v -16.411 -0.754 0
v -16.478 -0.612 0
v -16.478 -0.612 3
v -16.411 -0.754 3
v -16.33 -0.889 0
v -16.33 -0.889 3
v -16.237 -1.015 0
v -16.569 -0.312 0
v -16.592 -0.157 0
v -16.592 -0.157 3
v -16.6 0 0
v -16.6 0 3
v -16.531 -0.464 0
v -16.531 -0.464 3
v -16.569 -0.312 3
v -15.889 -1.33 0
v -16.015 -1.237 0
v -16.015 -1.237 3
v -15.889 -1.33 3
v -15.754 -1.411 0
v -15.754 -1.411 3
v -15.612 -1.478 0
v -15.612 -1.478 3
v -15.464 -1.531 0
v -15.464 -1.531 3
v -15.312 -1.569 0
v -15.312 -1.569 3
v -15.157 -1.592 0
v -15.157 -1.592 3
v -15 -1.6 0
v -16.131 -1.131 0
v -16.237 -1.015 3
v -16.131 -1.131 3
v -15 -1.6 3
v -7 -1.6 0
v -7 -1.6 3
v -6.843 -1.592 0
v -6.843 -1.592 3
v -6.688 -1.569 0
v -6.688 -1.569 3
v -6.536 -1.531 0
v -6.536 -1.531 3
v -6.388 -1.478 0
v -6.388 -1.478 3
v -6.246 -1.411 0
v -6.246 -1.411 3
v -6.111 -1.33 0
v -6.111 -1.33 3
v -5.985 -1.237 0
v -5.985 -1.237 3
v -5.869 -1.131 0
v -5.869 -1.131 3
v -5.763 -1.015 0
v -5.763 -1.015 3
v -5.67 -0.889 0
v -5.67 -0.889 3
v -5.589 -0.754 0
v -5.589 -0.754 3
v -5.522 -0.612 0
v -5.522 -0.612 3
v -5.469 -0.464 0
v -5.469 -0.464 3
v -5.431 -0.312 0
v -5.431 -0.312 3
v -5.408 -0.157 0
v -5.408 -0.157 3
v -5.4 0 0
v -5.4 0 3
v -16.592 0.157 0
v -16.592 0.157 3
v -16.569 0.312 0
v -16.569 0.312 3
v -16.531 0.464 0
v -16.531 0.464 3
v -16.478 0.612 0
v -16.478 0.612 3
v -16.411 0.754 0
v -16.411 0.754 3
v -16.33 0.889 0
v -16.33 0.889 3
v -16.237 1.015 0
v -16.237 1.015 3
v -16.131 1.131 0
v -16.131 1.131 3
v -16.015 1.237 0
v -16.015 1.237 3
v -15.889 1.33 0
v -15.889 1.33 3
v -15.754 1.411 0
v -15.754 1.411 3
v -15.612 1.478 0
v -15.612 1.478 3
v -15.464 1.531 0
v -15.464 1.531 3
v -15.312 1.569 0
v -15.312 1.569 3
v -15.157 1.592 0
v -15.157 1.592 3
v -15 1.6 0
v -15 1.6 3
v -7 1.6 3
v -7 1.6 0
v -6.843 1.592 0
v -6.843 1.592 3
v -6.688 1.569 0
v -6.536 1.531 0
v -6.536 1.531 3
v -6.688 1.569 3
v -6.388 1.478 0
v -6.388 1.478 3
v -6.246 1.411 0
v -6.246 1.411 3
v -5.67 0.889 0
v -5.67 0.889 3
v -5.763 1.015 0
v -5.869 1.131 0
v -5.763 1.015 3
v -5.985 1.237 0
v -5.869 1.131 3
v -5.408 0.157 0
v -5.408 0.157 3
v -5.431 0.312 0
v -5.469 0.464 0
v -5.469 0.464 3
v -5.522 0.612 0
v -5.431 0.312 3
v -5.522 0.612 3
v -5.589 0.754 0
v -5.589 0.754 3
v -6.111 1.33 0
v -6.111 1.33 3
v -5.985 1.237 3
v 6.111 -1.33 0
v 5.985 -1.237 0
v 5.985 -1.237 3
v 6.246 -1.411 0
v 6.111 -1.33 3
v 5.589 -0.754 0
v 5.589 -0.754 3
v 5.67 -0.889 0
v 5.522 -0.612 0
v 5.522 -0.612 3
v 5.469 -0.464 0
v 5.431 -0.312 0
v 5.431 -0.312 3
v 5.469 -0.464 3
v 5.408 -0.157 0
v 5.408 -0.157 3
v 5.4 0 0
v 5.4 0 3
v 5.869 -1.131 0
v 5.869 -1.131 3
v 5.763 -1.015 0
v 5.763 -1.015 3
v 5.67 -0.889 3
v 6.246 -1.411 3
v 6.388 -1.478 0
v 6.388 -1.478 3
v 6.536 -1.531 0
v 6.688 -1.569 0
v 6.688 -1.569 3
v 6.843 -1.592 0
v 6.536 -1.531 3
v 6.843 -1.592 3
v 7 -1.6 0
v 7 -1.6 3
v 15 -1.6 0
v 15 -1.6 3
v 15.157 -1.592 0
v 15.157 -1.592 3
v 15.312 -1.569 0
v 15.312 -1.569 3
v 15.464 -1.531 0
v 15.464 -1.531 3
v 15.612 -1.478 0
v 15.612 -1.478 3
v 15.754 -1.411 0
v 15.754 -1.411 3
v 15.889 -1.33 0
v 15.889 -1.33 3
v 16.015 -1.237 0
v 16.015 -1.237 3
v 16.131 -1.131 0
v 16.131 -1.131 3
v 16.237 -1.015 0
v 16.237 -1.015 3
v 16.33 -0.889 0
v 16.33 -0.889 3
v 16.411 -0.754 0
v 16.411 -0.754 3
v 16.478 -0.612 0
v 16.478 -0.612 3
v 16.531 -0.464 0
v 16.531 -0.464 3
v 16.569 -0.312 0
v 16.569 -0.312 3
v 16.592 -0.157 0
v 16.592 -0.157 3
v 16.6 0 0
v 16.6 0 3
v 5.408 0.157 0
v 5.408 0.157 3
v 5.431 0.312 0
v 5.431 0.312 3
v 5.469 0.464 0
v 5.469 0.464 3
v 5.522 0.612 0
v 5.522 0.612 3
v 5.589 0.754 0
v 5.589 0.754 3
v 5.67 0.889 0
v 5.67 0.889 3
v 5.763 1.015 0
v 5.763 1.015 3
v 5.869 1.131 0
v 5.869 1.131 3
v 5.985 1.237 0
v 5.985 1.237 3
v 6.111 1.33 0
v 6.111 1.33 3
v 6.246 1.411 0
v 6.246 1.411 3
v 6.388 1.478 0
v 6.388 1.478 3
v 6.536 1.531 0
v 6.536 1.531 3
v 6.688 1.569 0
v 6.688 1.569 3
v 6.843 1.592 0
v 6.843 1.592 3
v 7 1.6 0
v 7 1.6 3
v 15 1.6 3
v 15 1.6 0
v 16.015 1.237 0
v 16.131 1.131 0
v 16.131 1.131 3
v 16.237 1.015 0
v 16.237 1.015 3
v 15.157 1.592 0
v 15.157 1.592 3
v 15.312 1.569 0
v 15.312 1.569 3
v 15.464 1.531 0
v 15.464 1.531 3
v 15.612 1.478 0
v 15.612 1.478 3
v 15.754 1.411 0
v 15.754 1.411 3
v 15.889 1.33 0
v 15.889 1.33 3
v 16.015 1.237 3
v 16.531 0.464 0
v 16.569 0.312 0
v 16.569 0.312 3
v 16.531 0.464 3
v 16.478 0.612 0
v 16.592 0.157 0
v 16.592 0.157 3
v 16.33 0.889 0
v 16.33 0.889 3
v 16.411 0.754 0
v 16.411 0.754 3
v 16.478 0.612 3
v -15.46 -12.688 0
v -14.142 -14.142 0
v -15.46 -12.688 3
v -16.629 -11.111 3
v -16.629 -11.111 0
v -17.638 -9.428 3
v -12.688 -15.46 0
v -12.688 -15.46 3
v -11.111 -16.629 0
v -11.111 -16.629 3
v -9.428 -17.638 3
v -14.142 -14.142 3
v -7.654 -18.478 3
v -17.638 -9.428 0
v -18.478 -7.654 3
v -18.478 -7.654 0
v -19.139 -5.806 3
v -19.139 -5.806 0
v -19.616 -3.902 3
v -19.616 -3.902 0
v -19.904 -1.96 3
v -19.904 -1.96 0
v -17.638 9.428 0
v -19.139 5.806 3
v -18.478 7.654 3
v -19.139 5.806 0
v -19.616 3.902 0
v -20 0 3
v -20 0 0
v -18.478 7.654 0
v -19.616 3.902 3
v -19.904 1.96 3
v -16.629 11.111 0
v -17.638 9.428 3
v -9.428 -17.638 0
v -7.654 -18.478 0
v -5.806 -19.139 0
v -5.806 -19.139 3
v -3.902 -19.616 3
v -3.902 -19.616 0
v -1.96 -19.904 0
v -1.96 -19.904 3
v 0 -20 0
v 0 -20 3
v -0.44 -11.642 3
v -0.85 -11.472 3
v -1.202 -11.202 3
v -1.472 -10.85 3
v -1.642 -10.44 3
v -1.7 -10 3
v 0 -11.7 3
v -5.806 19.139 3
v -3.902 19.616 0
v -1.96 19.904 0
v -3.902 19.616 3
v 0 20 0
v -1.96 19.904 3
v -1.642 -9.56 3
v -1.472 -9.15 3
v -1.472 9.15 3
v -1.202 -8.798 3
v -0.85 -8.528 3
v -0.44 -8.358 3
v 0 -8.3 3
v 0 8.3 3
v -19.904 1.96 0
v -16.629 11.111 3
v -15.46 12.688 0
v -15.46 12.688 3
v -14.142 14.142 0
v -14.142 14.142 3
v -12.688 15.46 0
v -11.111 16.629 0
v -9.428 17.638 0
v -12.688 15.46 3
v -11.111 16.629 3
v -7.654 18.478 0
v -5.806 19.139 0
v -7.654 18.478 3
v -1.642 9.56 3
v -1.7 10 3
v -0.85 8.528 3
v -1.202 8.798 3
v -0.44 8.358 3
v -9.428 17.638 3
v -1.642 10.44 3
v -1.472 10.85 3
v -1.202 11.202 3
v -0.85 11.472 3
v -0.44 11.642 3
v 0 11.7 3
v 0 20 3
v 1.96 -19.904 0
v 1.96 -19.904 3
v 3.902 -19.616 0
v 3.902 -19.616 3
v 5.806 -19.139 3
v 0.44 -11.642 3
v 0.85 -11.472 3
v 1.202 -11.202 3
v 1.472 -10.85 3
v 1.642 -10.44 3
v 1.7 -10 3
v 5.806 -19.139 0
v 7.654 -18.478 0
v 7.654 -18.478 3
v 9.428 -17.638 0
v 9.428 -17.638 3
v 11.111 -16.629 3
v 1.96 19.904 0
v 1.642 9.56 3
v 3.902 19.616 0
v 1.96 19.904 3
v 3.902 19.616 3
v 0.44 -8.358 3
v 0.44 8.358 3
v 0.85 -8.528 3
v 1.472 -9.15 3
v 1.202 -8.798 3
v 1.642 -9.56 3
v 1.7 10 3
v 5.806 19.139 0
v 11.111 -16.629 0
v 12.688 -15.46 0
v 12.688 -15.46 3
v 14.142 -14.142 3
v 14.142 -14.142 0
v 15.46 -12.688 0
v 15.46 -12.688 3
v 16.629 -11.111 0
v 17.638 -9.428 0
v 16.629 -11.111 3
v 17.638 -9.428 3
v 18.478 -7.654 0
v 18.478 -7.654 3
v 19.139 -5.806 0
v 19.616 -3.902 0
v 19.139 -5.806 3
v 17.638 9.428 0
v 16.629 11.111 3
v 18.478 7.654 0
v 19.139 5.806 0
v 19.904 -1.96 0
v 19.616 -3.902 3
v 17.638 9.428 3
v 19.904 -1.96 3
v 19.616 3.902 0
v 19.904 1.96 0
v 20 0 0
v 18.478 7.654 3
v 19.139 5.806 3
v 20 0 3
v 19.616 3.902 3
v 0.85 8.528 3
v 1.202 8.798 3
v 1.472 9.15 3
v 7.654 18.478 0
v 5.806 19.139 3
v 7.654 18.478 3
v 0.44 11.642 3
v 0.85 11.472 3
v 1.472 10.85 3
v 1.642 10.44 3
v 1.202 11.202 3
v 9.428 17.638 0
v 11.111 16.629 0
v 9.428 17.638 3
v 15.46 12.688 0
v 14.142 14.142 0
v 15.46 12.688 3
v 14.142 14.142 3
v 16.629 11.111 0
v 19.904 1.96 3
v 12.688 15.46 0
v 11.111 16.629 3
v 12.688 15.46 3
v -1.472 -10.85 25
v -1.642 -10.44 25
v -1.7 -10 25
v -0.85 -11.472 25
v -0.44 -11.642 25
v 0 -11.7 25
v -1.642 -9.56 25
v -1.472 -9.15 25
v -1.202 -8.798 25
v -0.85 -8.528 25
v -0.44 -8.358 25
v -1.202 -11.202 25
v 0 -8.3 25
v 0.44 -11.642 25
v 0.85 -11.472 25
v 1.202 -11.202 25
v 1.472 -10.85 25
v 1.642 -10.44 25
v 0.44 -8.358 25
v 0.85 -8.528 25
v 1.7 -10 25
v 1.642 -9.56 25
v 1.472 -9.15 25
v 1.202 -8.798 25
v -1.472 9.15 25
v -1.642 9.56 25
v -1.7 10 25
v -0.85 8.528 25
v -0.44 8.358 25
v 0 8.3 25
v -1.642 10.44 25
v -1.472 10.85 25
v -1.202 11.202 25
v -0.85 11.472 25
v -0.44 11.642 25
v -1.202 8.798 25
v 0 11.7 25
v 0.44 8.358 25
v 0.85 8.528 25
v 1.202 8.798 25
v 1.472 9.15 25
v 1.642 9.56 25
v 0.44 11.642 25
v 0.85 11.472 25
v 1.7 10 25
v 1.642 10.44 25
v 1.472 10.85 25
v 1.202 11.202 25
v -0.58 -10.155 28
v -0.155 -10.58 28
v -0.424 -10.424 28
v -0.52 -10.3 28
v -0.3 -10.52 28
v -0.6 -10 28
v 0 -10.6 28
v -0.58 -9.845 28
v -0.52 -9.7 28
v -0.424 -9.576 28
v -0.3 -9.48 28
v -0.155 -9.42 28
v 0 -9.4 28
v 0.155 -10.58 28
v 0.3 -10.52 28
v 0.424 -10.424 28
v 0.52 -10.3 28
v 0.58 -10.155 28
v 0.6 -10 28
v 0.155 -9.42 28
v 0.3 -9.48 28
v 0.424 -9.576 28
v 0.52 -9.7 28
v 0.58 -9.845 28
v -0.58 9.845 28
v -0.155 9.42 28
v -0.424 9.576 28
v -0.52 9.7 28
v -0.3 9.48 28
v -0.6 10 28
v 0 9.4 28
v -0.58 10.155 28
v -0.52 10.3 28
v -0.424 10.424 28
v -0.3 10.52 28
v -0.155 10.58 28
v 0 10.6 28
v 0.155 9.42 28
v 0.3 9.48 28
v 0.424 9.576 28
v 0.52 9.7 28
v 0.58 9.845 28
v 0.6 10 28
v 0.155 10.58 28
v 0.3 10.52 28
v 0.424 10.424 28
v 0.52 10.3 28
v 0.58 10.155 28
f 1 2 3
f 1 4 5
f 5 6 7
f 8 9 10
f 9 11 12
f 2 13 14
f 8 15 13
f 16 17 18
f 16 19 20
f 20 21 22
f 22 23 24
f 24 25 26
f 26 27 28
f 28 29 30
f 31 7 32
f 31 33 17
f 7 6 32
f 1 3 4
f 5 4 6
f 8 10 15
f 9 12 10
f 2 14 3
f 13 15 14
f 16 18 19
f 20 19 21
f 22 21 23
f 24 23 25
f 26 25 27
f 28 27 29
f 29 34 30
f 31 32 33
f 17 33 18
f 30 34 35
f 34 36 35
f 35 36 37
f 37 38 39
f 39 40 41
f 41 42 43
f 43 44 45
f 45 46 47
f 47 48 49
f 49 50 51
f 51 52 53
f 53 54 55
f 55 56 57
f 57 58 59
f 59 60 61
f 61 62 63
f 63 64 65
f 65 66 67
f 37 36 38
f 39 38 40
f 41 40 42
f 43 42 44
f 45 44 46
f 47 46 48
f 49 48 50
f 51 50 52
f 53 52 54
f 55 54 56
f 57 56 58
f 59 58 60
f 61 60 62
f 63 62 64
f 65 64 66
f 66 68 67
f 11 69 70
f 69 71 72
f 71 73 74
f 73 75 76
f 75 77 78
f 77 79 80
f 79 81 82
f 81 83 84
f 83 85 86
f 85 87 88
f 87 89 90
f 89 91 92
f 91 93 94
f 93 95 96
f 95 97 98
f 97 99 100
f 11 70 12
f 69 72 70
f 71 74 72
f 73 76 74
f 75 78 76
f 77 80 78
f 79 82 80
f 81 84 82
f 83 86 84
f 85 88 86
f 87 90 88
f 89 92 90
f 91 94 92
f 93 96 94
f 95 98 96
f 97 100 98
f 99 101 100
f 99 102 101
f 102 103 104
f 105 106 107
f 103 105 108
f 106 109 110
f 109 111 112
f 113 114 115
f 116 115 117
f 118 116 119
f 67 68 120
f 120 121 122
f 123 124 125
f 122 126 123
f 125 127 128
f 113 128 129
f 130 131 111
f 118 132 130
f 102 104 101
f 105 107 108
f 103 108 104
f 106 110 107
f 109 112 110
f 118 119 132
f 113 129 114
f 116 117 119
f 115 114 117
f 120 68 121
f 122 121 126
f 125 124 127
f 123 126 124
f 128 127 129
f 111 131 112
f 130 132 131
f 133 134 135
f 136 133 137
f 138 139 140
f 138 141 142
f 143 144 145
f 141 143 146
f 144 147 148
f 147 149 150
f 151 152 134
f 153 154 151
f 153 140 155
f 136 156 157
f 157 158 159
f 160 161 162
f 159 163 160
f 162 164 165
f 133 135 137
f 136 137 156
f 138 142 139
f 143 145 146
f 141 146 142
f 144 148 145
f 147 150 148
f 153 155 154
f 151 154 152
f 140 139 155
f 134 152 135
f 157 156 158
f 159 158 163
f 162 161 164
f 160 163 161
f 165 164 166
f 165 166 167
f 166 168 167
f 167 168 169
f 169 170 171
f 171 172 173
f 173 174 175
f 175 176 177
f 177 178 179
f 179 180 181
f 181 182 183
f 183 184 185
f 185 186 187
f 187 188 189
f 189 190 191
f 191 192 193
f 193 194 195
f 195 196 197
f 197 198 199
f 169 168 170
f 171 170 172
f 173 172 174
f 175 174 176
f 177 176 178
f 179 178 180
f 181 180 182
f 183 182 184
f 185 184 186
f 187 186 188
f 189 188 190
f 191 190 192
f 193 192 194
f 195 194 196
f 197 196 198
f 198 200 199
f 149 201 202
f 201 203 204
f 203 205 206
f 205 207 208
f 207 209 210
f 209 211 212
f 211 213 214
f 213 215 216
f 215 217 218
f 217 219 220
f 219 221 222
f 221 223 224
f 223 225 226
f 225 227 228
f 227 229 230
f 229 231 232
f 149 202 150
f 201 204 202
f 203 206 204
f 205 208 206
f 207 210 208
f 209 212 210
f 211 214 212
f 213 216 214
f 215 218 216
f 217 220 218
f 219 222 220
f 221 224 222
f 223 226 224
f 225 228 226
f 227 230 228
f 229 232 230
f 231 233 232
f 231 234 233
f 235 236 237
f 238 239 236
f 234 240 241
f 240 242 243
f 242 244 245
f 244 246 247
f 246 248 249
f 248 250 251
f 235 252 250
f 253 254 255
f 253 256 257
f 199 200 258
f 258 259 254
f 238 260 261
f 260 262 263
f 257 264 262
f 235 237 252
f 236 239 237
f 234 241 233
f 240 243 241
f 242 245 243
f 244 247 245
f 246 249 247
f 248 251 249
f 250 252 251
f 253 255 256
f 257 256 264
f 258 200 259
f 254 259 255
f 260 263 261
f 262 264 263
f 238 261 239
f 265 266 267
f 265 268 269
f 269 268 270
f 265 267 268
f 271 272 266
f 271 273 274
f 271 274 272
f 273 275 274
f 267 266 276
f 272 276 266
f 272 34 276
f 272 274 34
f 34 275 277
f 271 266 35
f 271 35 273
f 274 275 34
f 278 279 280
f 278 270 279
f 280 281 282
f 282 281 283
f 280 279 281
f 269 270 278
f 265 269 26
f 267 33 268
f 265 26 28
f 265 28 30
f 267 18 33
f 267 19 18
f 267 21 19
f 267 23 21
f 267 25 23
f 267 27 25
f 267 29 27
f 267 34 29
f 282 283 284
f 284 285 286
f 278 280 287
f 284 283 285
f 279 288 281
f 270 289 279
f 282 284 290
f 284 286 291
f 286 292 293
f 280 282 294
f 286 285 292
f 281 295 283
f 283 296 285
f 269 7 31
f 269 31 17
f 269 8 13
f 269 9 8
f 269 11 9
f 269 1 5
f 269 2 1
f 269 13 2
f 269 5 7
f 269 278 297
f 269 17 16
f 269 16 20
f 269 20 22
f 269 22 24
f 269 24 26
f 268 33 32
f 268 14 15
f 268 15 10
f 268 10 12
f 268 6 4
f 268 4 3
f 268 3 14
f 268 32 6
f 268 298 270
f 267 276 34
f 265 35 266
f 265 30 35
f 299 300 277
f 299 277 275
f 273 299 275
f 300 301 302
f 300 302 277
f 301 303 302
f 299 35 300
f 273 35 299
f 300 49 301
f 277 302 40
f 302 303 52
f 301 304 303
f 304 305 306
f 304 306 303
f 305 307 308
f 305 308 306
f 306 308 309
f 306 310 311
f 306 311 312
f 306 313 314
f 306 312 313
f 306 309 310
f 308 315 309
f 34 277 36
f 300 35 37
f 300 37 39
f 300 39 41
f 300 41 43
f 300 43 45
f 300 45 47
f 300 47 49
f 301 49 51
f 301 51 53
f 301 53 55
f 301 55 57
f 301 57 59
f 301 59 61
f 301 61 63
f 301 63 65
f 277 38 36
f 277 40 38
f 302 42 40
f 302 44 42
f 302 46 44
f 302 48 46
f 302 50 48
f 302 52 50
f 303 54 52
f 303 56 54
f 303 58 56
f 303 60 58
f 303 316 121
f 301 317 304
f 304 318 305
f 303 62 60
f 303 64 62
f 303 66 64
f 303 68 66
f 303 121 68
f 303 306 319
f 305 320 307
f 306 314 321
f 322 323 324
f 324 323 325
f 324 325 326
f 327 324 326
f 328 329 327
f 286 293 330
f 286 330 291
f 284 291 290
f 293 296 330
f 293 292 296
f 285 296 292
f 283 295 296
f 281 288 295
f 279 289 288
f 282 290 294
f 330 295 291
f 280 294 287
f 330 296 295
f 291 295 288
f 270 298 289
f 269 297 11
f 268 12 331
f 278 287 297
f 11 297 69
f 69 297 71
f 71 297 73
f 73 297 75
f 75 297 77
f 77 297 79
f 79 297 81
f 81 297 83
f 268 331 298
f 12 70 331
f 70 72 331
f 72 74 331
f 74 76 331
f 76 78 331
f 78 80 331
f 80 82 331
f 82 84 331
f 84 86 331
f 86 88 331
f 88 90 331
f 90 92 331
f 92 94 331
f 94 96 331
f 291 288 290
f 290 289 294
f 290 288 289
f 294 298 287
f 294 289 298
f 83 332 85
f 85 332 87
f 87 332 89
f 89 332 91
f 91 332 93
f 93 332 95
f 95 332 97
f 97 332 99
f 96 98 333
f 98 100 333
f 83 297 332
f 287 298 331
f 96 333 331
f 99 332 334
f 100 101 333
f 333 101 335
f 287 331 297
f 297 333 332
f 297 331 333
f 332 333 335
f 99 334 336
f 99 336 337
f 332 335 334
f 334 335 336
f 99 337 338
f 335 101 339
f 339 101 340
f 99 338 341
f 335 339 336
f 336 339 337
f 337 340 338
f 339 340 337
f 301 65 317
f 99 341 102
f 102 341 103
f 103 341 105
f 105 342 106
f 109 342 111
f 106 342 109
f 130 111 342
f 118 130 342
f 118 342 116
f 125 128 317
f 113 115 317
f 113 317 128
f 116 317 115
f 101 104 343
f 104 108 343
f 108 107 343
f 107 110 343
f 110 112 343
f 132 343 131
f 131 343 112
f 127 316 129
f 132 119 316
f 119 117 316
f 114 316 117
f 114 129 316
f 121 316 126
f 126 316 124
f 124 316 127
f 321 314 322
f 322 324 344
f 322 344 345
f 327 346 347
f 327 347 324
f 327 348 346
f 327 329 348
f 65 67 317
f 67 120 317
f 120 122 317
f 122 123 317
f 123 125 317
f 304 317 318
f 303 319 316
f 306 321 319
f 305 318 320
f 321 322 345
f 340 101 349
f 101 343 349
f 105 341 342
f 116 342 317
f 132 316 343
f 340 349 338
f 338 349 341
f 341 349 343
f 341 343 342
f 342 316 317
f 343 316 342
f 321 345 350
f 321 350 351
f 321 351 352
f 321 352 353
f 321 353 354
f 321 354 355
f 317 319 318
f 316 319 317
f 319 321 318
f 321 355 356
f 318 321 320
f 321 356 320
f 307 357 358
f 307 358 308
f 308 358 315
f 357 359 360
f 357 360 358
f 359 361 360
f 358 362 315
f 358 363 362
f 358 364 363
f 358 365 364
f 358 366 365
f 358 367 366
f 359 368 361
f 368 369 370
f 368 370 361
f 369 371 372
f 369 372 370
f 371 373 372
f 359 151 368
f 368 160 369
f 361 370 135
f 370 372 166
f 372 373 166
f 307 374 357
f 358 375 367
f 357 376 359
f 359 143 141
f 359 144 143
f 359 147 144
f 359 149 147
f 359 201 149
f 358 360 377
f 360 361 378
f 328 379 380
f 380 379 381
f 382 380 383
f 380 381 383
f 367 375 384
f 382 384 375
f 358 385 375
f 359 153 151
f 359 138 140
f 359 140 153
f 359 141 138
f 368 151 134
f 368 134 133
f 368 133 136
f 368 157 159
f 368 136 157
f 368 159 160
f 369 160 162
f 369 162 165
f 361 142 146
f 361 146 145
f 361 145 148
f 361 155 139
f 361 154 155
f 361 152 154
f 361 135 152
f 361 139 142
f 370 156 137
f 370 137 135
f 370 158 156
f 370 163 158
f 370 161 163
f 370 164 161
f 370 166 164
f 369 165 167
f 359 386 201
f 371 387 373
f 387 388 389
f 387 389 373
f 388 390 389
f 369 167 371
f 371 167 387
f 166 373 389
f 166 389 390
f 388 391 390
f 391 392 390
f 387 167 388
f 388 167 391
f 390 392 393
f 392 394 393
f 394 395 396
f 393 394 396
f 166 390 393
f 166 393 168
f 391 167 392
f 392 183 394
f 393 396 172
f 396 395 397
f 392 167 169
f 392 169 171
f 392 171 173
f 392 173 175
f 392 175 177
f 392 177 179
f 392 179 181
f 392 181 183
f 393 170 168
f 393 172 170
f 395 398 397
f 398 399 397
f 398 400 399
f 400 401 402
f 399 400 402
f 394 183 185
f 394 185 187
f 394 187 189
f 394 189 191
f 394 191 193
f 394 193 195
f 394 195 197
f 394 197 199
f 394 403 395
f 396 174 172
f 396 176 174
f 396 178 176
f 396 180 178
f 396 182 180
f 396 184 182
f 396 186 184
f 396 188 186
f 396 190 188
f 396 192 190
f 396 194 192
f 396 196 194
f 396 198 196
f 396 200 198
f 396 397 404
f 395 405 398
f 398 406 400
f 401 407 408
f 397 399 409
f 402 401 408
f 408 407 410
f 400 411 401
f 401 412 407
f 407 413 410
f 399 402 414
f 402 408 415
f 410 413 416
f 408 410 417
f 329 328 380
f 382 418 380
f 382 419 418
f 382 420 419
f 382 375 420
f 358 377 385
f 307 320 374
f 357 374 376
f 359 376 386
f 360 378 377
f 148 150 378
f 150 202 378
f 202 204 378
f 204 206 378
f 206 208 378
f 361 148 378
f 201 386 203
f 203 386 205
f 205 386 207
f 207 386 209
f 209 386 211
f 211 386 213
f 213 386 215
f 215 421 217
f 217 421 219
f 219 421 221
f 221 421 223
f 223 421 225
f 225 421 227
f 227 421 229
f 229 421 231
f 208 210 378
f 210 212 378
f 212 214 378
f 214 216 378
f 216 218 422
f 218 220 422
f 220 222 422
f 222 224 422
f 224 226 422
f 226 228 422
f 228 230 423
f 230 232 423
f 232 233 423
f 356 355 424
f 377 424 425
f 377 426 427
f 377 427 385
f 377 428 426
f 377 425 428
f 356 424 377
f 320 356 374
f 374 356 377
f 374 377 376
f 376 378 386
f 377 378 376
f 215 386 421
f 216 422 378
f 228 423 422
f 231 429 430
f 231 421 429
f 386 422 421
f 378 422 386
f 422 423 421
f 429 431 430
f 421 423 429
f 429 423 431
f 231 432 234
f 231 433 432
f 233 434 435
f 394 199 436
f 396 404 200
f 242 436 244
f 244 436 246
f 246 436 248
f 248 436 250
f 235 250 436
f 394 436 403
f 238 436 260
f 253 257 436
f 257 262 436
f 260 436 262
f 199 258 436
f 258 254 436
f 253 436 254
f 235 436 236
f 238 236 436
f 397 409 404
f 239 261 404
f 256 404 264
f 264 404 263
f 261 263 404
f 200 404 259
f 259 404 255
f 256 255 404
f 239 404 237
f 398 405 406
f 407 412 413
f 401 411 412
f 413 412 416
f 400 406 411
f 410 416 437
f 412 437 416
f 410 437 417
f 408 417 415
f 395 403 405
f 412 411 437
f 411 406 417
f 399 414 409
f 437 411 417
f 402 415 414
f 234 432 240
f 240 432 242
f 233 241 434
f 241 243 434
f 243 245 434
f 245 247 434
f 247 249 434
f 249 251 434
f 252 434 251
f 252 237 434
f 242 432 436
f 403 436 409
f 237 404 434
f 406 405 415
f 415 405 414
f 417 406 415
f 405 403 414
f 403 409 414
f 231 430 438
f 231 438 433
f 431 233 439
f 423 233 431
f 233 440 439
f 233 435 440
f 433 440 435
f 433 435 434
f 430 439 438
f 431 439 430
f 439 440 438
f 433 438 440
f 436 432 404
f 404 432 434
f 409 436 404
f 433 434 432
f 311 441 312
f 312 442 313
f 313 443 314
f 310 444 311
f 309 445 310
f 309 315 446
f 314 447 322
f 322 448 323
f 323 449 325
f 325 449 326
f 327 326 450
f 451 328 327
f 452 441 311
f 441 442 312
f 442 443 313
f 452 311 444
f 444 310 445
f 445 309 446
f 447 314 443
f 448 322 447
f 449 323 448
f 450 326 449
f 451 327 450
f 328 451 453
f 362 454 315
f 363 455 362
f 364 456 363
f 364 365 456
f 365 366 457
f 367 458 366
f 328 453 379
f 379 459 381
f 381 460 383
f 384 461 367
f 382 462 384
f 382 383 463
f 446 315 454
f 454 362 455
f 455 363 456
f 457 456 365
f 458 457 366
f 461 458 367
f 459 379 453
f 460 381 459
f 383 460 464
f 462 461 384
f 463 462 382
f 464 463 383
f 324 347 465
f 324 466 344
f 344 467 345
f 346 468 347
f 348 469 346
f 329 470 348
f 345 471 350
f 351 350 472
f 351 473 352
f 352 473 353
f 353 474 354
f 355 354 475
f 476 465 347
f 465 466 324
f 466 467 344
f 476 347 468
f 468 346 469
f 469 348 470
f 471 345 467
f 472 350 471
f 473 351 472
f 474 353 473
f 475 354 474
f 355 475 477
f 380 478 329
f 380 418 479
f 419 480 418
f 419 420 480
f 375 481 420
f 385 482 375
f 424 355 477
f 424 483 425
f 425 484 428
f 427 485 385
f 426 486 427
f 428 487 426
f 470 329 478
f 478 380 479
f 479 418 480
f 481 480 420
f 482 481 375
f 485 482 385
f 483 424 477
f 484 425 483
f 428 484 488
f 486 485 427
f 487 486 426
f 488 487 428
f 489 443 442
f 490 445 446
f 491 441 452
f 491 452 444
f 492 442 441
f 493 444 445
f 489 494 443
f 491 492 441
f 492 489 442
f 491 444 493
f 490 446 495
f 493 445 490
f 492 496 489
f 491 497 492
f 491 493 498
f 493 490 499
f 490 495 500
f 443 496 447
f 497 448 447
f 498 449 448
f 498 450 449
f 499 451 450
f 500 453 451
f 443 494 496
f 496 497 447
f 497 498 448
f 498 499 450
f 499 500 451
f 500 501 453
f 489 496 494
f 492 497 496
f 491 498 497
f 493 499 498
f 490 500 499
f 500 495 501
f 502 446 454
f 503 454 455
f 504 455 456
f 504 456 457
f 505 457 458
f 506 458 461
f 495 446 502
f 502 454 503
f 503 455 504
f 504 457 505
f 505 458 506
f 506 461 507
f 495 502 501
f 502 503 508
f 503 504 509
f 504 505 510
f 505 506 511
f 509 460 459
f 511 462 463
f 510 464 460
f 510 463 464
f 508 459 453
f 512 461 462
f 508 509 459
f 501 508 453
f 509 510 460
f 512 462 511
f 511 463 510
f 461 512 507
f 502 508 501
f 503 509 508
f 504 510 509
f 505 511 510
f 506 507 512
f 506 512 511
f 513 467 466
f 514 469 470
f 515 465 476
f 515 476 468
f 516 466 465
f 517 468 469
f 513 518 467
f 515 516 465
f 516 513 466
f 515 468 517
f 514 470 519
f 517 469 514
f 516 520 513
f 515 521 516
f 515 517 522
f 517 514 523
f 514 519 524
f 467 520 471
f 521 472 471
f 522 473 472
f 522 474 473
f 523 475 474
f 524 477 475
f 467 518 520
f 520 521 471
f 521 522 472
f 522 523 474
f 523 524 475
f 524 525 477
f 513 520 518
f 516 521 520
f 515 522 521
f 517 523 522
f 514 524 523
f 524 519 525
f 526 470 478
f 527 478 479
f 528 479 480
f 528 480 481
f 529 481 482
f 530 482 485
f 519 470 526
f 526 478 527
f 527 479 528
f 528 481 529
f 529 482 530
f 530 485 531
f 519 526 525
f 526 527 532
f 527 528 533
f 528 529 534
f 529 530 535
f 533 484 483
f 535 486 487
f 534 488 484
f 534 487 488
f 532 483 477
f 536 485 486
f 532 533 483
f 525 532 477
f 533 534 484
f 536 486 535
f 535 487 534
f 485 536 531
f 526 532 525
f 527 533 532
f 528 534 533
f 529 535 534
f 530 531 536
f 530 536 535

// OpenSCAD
// file: params.scad
// Lanterna do Olho — parâmetros comuns (mm)
L = 150;      // comprimento externo (x)
W = 100;      // largura externa (y)
H = 80;       // altura externa (z)
wall = 2.0;   // parede
floor_t = 2.4;
rc = 5;       // raio dos cantos
dowel_d = 20.6;   // furo do cabo (dowel de 20 mm + folga). Cabo de vassoura: mede e troca.
socket_h = 35;    // altura do soquete do cabo dentro da caixa
lid_lip = 1.6;    // aba interna da tampa
lid_t = 3;
$fn = 64;
module rbox(l, w, h, r) { hull() for (x=[-1,1], y=[-1,1]) translate([x*(l/2-r), y*(w/2-r), 0]) cylinder(r=r, h=h); }
// main file
include <params.scad>
// SUPORTE DO OLHO: disco de 40 mm com 2 pinos pro isopor e 2 rasgos
// pra parafusar/abraçar na plataforma do pan-tilt.
difference() {
  cylinder(d=40, h=3);
  for (x=[-11, 11]) hull() { translate([x-4,0,-1]) cylinder(d=3.2,h=5); translate([x+4,0,-1]) cylinder(d=3.2,h=5); }
}
// pinos (ficam dentro do isopor)
for (y=[-10, 10]) translate([0, y, 3]) cylinder(d=3.4, h=22, $fn=24);
// cone na ponta pra entrar fácil
for (y=[-10, 10]) translate([0, y, 25]) cylinder(d1=3.4, d2=1.2, h=3, $fn=24);
